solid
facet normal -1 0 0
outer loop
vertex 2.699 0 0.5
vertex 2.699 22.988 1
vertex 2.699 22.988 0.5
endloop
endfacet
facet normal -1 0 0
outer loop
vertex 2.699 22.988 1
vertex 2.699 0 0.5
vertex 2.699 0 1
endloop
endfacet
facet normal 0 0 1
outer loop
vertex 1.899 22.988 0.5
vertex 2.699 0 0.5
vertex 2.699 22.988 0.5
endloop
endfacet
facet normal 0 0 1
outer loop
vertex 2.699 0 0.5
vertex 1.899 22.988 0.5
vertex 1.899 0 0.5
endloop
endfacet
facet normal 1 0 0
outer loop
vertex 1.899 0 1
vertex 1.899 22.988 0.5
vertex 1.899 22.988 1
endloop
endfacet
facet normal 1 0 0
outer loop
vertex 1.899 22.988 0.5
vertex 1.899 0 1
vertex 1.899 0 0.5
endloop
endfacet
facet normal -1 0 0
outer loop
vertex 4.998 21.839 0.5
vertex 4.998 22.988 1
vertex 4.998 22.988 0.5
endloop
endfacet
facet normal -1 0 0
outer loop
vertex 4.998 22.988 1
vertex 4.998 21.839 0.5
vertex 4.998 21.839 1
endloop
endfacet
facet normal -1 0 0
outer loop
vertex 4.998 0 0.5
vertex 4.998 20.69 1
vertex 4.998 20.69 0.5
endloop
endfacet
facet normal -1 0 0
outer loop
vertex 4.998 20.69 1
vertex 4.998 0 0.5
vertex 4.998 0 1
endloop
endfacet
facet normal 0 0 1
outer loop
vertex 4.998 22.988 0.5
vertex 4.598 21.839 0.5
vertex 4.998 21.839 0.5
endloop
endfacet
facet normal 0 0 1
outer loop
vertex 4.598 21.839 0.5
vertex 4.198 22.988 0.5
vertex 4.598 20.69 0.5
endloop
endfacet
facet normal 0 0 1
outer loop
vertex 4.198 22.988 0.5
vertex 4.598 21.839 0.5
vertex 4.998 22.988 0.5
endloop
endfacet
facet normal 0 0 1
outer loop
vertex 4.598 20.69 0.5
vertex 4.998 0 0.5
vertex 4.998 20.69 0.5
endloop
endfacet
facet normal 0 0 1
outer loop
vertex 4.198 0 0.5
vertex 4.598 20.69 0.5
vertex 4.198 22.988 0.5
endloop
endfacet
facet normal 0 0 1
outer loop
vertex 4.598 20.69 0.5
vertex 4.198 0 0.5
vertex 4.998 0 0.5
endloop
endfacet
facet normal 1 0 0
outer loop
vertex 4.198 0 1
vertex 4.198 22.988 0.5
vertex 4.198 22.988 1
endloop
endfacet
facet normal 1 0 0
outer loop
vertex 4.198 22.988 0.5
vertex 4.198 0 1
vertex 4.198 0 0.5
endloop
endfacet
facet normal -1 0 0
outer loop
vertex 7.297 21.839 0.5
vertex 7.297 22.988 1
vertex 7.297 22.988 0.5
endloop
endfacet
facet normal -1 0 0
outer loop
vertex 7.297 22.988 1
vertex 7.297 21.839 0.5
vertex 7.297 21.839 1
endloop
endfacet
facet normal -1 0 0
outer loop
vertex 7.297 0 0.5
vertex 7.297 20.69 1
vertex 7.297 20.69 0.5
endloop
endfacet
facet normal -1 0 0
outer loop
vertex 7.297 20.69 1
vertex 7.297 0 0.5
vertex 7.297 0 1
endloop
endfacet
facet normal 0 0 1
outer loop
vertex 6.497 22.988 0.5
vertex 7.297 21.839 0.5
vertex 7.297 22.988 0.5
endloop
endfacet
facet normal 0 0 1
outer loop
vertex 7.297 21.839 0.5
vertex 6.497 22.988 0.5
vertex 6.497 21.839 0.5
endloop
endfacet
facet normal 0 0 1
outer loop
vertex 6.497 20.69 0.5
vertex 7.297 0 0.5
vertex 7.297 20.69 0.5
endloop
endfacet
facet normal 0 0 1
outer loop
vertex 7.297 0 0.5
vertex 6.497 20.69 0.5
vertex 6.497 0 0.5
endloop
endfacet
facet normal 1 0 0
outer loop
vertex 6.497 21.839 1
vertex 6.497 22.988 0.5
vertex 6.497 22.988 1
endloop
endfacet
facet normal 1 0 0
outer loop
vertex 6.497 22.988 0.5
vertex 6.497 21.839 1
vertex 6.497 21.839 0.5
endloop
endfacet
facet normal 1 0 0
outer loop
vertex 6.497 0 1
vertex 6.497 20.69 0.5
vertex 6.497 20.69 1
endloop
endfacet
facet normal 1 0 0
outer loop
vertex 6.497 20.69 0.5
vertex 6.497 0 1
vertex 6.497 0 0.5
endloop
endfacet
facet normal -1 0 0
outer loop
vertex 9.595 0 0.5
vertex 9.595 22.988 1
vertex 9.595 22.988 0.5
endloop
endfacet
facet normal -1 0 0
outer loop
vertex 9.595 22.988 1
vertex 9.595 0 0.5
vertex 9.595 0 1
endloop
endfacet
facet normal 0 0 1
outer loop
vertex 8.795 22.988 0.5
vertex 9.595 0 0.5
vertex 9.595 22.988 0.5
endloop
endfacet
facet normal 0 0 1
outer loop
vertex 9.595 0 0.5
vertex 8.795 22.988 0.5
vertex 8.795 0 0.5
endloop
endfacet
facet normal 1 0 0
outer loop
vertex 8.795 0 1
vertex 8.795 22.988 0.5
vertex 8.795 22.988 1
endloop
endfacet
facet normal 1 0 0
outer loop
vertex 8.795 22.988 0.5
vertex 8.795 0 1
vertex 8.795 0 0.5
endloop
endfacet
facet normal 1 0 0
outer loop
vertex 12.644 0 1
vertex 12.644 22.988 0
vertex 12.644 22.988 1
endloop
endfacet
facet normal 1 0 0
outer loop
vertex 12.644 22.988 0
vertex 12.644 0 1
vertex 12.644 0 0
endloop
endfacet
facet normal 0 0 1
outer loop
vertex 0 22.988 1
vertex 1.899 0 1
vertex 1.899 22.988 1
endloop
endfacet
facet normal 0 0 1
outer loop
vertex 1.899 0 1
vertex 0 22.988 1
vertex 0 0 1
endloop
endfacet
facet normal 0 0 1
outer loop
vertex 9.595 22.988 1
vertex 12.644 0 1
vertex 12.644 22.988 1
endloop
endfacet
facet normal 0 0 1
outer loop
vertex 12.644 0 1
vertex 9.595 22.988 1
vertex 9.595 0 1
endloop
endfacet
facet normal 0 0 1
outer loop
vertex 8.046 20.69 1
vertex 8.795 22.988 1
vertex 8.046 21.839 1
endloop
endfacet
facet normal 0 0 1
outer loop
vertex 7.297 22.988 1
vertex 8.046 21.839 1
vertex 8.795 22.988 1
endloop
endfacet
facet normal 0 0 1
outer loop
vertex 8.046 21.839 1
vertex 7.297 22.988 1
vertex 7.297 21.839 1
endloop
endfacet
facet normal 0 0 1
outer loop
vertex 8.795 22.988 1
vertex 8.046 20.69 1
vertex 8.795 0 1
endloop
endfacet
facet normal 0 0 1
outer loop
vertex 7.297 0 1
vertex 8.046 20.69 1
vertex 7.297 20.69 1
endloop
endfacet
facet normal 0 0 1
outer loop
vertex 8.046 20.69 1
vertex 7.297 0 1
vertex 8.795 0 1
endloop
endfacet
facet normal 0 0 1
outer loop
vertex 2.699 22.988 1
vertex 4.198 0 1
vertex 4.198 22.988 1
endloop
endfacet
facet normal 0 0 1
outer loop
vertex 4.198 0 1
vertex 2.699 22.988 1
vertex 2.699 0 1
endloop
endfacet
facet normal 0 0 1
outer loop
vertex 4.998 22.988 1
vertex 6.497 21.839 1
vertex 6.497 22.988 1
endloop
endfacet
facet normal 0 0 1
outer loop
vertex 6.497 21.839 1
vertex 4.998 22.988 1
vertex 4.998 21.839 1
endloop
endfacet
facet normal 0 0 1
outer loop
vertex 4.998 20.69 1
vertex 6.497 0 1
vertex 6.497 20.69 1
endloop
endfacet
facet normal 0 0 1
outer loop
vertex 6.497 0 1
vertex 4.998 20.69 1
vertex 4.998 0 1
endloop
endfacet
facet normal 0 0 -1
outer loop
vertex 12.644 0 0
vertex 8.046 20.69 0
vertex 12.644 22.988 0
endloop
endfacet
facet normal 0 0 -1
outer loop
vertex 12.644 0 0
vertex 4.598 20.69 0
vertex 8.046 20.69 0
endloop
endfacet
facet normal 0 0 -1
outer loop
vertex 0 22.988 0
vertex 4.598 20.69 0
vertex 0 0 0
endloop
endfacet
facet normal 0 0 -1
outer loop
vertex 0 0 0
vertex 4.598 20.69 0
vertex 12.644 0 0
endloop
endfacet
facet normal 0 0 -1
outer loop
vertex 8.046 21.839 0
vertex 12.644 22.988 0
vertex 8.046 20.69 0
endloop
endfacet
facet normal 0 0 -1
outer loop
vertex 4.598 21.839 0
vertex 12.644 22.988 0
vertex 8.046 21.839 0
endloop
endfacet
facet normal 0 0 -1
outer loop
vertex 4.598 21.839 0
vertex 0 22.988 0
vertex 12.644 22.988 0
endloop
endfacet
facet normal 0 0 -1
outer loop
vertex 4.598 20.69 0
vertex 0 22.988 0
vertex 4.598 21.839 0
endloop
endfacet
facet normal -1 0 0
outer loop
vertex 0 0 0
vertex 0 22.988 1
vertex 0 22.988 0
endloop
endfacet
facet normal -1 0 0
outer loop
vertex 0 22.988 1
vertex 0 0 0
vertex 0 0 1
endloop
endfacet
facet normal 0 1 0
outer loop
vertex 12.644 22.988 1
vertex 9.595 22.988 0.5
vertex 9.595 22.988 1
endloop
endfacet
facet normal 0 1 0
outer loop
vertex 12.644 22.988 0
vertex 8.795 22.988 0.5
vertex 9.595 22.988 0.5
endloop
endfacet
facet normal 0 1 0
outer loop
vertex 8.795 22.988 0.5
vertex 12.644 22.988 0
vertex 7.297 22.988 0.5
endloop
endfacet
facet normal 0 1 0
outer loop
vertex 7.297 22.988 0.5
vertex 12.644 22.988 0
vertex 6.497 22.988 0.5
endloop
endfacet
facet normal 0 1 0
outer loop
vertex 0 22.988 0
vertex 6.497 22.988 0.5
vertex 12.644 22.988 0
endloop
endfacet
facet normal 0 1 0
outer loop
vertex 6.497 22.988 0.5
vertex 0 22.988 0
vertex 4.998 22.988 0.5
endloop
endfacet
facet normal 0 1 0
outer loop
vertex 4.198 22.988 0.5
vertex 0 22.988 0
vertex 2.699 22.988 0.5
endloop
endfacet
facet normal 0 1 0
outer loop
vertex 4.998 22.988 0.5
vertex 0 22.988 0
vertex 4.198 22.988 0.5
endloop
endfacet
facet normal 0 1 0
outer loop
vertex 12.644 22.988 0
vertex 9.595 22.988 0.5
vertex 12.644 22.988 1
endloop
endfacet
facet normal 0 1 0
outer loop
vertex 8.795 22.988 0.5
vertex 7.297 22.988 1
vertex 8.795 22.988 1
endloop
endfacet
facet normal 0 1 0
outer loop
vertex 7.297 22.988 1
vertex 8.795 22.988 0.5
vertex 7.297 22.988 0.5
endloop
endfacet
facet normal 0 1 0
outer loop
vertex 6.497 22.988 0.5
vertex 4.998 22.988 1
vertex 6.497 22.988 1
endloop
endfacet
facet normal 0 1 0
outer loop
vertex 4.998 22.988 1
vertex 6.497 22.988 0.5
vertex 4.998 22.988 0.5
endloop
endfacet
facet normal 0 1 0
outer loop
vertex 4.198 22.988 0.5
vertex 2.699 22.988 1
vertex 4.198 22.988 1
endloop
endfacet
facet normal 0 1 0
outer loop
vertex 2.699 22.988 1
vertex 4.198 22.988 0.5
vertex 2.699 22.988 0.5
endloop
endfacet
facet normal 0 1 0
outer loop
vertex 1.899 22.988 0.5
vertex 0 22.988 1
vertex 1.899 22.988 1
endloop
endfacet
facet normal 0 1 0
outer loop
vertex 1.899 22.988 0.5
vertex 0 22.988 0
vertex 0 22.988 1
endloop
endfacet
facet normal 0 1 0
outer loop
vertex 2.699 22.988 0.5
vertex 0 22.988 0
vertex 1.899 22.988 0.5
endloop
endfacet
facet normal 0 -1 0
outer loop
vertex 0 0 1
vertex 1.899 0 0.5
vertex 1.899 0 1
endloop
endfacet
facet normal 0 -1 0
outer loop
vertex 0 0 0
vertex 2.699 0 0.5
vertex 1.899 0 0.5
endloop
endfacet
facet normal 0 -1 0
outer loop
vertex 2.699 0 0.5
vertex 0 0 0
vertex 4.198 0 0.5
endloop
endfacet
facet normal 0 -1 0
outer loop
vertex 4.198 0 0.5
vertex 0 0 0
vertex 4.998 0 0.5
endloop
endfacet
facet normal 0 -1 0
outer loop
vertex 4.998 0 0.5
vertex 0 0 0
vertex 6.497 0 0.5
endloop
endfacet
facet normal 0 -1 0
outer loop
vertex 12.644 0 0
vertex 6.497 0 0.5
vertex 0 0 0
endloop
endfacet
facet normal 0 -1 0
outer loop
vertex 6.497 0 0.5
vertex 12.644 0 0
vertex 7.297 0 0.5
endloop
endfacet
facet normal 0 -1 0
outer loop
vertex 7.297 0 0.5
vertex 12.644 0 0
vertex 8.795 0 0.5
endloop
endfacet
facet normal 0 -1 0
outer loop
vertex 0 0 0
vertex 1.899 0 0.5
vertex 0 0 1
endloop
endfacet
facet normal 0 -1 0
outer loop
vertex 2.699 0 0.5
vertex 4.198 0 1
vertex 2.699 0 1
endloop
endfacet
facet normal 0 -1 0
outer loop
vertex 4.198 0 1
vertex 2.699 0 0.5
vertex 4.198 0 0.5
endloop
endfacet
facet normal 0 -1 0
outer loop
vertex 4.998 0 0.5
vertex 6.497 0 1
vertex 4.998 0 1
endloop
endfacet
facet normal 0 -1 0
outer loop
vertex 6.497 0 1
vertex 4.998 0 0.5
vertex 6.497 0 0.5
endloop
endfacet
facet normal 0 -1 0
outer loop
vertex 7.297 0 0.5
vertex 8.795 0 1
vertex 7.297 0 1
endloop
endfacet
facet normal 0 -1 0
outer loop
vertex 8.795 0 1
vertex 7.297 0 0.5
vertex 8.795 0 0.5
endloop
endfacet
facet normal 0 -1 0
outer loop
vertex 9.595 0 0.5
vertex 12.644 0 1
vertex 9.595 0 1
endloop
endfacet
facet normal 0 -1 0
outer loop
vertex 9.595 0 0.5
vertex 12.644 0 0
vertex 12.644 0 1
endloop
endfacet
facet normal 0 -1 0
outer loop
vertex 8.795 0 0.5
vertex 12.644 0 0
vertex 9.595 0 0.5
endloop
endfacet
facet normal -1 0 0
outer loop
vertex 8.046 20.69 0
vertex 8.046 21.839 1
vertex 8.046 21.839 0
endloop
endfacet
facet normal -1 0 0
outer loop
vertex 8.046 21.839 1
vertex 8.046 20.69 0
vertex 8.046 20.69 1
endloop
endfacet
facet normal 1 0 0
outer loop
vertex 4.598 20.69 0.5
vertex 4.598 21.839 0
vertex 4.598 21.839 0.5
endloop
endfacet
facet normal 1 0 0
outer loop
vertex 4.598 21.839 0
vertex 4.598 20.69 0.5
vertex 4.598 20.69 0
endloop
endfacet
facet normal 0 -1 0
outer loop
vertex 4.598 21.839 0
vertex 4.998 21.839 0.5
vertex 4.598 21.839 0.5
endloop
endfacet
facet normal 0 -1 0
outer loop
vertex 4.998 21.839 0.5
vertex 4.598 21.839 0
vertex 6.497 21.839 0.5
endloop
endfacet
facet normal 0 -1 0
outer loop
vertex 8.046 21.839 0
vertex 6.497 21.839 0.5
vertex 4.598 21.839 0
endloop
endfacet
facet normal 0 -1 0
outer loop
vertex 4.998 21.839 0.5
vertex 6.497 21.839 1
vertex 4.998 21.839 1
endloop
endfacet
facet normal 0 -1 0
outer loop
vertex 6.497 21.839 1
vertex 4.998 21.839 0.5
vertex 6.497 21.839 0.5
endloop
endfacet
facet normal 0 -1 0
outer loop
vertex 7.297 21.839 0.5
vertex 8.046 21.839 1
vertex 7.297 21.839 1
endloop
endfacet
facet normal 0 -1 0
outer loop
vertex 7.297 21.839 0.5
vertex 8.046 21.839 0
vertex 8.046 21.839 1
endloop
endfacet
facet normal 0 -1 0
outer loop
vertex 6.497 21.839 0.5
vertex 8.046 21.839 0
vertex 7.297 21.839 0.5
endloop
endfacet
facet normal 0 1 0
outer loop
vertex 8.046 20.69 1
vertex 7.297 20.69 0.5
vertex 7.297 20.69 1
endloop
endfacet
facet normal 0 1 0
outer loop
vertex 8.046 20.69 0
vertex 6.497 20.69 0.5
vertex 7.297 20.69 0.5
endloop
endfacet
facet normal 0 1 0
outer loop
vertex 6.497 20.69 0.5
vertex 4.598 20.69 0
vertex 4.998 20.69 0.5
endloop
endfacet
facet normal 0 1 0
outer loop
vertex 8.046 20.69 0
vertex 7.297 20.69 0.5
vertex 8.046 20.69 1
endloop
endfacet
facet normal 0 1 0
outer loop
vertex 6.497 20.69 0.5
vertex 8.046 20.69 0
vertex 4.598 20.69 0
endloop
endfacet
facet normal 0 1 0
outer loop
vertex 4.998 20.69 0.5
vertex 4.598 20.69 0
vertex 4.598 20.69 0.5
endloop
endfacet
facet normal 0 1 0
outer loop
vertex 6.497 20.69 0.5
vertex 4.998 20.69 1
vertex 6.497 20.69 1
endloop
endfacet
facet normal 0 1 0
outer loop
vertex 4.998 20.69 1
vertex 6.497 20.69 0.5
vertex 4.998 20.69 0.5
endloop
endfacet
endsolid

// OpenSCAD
/*
 * PROMPT: Back wall panel of the Polish outdoor toilet (sławojka) in H0 scale (1:87).
 * Centred ventilation slot near the top, vertical plank grooves on exterior face.
 * Flat 1 mm panel, exterior face up.
 */

$fn = 32;
S = 1/87;
panel_t = 1.0;

bld_w_real   = 1100;
bld_h_real   = 2000;
vent_w_real  = 300;
vent_h_real  = 100;
vent_z_real  = 1800;
plank_period = 200 * S;
groove_w     = 0.8;
groove_d     = 0.5;

bld_w  = bld_w_real * S;
bld_h  = bld_h_real * S;
vent_w = vent_w_real * S;
vent_h = vent_h_real * S;
vent_z = vent_z_real * S;

module wall_back() {
    difference() {
        cube([bld_w, bld_h, panel_t]);

        // ventilation slot, centred, near top
        translate([(bld_w - vent_w)/2, vent_z, -1])
            cube([vent_w, vent_h, panel_t+2]);

        // vertical plank grooves on exterior face
        for (i = [1 : floor(bld_w / plank_period) - 1]) {
            gx = i * plank_period - groove_w/2;
            translate([gx, -1, panel_t - groove_d])
                cube([groove_w, bld_h+2, groove_d+1]);
        }
    }
}

wall_back();
